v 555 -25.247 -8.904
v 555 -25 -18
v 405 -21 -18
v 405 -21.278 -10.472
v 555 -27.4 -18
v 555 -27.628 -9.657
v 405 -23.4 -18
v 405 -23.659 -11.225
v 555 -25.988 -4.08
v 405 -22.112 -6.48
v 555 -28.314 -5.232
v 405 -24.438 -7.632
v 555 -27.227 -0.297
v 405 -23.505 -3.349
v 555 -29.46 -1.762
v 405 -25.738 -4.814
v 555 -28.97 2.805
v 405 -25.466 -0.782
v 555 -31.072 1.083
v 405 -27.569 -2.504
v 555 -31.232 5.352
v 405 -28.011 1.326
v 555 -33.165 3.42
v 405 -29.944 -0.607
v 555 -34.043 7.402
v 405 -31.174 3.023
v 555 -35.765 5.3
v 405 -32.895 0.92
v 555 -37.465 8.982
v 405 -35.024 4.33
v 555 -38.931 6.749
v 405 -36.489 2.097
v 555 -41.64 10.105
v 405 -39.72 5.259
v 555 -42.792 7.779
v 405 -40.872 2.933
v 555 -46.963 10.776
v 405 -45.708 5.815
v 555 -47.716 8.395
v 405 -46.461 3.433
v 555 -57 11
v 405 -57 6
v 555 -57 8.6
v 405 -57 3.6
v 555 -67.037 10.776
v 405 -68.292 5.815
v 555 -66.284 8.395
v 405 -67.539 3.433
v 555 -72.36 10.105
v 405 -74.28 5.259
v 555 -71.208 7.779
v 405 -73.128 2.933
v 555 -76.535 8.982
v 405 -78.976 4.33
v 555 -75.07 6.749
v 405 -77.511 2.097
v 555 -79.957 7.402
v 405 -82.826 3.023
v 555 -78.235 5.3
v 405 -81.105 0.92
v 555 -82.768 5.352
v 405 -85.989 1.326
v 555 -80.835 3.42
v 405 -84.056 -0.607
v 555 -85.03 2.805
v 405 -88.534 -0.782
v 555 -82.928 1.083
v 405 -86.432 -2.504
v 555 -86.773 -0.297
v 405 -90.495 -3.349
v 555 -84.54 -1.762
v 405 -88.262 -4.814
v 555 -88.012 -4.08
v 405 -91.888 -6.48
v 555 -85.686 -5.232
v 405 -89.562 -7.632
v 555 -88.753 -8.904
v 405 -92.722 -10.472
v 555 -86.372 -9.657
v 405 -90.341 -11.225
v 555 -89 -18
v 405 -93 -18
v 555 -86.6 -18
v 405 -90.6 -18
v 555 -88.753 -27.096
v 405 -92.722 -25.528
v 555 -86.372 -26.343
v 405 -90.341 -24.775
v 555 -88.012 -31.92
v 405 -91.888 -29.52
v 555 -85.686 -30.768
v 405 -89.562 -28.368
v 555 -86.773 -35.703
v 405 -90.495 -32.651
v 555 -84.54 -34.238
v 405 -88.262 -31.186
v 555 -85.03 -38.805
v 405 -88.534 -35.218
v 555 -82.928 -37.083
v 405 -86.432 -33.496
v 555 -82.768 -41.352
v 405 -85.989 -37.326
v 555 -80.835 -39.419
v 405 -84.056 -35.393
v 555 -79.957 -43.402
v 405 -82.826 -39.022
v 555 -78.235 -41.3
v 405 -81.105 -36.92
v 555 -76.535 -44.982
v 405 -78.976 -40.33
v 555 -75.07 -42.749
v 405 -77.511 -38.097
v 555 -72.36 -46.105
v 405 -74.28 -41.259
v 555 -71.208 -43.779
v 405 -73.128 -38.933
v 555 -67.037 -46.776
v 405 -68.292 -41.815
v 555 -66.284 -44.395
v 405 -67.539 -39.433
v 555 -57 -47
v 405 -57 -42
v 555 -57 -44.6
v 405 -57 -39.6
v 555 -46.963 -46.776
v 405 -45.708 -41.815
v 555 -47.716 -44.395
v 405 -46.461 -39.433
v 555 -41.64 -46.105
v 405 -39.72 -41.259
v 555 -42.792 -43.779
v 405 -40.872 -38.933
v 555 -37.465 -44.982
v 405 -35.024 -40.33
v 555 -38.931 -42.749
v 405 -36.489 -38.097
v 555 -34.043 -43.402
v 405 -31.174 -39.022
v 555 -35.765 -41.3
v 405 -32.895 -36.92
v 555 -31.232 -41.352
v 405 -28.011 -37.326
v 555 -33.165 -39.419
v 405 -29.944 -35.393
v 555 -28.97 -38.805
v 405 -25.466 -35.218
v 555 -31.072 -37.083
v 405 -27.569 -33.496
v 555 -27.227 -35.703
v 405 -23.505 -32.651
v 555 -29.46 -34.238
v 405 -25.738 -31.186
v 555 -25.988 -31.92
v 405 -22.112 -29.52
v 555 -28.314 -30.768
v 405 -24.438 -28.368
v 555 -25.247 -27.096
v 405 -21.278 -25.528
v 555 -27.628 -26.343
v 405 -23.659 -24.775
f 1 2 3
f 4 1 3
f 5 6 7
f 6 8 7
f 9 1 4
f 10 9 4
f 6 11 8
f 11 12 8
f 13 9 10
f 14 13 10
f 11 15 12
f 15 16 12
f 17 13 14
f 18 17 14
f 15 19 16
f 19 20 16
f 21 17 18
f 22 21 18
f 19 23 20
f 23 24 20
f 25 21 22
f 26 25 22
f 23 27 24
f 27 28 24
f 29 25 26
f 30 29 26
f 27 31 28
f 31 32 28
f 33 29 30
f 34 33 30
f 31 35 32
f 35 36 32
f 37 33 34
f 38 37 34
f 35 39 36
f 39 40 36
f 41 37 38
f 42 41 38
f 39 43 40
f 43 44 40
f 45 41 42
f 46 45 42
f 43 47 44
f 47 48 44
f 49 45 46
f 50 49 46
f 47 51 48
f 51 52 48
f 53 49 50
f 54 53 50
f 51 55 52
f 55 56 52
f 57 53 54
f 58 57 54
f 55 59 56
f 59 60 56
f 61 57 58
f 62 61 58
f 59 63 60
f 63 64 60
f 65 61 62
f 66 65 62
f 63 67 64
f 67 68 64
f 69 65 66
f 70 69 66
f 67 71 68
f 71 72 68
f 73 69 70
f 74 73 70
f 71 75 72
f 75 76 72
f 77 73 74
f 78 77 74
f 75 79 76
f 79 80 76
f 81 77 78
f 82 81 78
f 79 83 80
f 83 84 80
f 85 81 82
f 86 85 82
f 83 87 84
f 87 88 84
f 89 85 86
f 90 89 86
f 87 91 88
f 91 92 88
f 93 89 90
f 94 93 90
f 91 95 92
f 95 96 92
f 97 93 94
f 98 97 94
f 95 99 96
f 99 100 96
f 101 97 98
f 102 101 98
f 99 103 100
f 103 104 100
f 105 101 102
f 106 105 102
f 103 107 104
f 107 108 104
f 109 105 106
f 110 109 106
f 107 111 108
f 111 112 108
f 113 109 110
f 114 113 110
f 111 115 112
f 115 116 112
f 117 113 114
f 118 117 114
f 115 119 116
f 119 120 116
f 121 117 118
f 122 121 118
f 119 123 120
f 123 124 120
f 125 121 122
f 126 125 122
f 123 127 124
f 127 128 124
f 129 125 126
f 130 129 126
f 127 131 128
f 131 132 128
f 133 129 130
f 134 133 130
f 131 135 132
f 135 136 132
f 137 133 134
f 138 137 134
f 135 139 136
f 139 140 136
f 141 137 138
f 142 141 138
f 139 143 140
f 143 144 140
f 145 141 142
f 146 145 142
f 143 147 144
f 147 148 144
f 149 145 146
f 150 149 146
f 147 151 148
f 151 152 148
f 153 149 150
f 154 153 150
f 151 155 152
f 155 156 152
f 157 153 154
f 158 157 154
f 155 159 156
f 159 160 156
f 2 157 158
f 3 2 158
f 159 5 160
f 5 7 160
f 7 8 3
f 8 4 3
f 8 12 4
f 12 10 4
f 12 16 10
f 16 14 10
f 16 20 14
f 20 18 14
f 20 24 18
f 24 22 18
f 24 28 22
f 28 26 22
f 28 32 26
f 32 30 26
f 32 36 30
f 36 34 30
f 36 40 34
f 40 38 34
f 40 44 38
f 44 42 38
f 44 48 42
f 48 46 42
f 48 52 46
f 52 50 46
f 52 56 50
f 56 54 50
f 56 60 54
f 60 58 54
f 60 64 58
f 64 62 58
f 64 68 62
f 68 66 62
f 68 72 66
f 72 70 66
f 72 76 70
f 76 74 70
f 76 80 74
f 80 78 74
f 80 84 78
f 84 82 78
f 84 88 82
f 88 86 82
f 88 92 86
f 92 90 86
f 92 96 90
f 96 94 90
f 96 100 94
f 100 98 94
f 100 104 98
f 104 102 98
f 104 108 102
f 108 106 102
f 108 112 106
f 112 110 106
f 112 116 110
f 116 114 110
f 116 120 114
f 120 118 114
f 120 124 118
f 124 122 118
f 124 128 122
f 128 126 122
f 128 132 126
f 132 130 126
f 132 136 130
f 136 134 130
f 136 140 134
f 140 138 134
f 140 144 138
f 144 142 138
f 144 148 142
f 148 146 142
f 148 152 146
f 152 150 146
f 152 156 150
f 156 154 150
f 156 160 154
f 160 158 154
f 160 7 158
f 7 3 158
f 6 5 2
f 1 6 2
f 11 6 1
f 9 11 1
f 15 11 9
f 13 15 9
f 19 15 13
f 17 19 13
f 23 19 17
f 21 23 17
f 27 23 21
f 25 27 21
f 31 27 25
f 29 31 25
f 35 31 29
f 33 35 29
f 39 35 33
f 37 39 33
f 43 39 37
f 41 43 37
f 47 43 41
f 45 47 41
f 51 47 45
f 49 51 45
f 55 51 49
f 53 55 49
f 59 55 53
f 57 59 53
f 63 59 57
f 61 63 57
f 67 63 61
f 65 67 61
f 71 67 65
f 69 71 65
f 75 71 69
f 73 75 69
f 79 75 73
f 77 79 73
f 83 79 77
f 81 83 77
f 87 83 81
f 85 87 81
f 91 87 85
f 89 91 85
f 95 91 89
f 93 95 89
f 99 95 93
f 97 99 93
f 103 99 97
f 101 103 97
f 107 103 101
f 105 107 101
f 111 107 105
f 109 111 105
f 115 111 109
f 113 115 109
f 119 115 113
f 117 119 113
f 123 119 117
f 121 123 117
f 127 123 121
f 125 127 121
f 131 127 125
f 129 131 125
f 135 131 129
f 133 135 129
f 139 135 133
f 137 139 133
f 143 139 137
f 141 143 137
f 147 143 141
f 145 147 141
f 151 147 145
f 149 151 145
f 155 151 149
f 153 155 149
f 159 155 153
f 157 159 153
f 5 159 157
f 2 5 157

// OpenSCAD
polyhedron(points=[[405.0, -21.0, -18.0], [405.0, -21.277655, -10.472184], [405.0, -22.111568, -6.48006], [405.0, -23.505149, -3.349061], [405.0, -25.46622, -0.782388], [405.0, -28.011174, 1.325884], [405.0, -31.173582, 3.02252], [405.0, -35.023591, 4.329901], [405.0, -39.72009, 5.258955], [405.0, -45.708275, 5.814896], [405.0, -57.0, 6.0], [405.0, -68.291725, 5.814896], [405.0, -74.27991, 5.258955], [405.0, -78.976409, 4.329901], [405.0, -82.826418, 3.02252], [405.0, -85.988826, 1.325884], [405.0, -88.53378, -0.782388], [405.0, -90.494851, -3.349061], [405.0, -91.888432, -6.48006], [405.0, -92.722345, -10.472184], [405.0, -93.0, -18.0], [405.0, -92.722345, -25.527816], [405.0, -91.888432, -29.51994], [405.0, -90.494851, -32.650939], [405.0, -88.53378, -35.217612], [405.0, -85.988826, -37.325884], [405.0, -82.826418, -39.02252], [405.0, -78.976409, -40.329901], [405.0, -74.27991, -41.258955], [405.0, -68.291725, -41.814896], [405.0, -57.0, -42.0], [405.0, -45.708275, -41.814896], [405.0, -39.72009, -41.258955], [405.0, -35.023591, -40.329901], [405.0, -31.173582, -39.02252], [405.0, -28.011174, -37.325884], [405.0, -25.46622, -35.217612], [405.0, -23.505149, -32.650939], [405.0, -22.111568, -29.51994], [405.0, -21.277655, -25.527816], [405.0, -23.4, -18.0], [405.0, -23.659145, -11.224965], [405.0, -24.437463, -7.632054], [405.0, -25.738139, -4.814155], [405.0, -27.568472, -2.504149], [405.0, -29.943762, -0.606704], [405.0, -32.895343, 0.920268], [405.0, -36.488685, 2.096911], [405.0, -40.872084, 2.933059], [405.0, -46.461057, 3.433407], [405.0, -57.0, 3.6], [405.0, -67.538943, 3.433407], [405.0, -73.127916, 2.933059], [405.0, -77.511315, 2.096911], [405.0, -81.104657, 0.920268], [405.0, -84.056238, -0.606704], [405.0, -86.431528, -2.504149], [405.0, -88.261861, -4.814155], [405.0, -89.562537, -7.632054], [405.0, -90.340855, -11.224965], [405.0, -90.6, -18.0], [405.0, -90.340855, -24.775035], [405.0, -89.562537, -28.367946], [405.0, -88.261861, -31.185845], [405.0, -86.431528, -33.495851], [405.0, -84.056238, -35.393296], [405.0, -81.104657, -36.920268], [405.0, -77.511315, -38.096911], [405.0, -73.127916, -38.933059], [405.0, -67.538943, -39.433407], [405.0, -57.0, -39.6], [405.0, -46.461057, -39.433407], [405.0, -40.872084, -38.933059], [405.0, -36.488685, -38.096911], [405.0, -32.895343, -36.920268], [405.0, -29.943762, -35.393296], [405.0, -27.568472, -33.495851], [405.0, -25.738139, -31.185845], [405.0, -24.437463, -28.367946], [405.0, -23.659145, -24.775035], [555.0, -25.0, -18.0], [555.0, -25.246805, -8.903889], [555.0, -25.98806, -4.080072], [555.0, -27.226799, -0.296782], [555.0, -28.969974, 2.804615], [555.0, -31.232155, 5.35211], [555.0, -34.043184, 7.402211], [555.0, -37.465414, 8.981963], [555.0, -41.64008, 10.10457], [555.0, -46.962911, 10.776333], [555.0, -57.0, 11.0], [555.0, -67.037089, 10.776333], [555.0, -72.35992, 10.10457], [555.0, -76.534586, 8.981963], [555.0, -79.956816, 7.402211], [555.0, -82.767845, 5.35211], [555.0, -85.030026, 2.804615], [555.0, -86.773201, -0.296782], [555.0, -88.01194, -4.080072], [555.0, -88.753195, -8.903889], [555.0, -89.0, -18.0], [555.0, -88.753195, -27.096111], [555.0, -88.01194, -31.919928], [555.0, -86.773201, -35.703218], [555.0, -85.030026, -38.804615], [555.0, -82.767845, -41.35211], [555.0, -79.956816, -43.402211], [555.0, -76.534586, -44.981963], [555.0, -72.35992, -46.10457], [555.0, -67.037089, -46.776333], [555.0, -57.0, -47.0], [555.0, -46.962911, -46.776333], [555.0, -41.64008, -46.10457], [555.0, -37.465414, -44.981963], [555.0, -34.043184, -43.402211], [555.0, -31.232155, -41.35211], [555.0, -28.969974, -38.804615], [555.0, -27.226799, -35.703218], [555.0, -25.98806, -31.919928], [555.0, -25.246805, -27.096111], [555.0, -27.4, -18.0], [555.0, -27.628294, -9.65667], [555.0, -28.313956, -5.232066], [555.0, -29.459789, -1.761876], [555.0, -31.072226, 1.082853], [555.0, -33.164743, 3.419521], [555.0, -35.764945, 5.299959], [555.0, -38.930508, 6.748973], [555.0, -42.792074, 7.778675], [555.0, -47.715693, 8.394843], [555.0, -57.0, 8.6], [555.0, -66.284307, 8.394843], [555.0, -71.207926, 7.778675], [555.0, -75.069492, 6.748973], [555.0, -78.235055, 5.299959], [555.0, -80.835257, 3.419521], [555.0, -82.927774, 1.082853], [555.0, -84.540211, -1.761876], [555.0, -85.686044, -5.232066], [555.0, -86.371706, -9.65667], [555.0, -86.6, -18.0], [555.0, -86.371706, -26.34333], [555.0, -85.686044, -30.767934], [555.0, -84.540211, -34.238124], [555.0, -82.927774, -37.082853], [555.0, -80.835257, -39.419521], [555.0, -78.235055, -41.299959], [555.0, -75.069492, -42.748973], [555.0, -71.207926, -43.778675], [555.0, -66.284307, -44.394843], [555.0, -57.0, -44.6], [555.0, -47.715693, -44.394843], [555.0, -42.792074, -43.778675], [555.0, -38.930508, -42.748973], [555.0, -35.764945, -41.299959], [555.0, -33.164743, -39.419521], [555.0, -31.072226, -37.082853], [555.0, -29.459789, -34.238124], [555.0, -28.313956, -30.767934], [555.0, -27.628294, -26.34333]], faces=[[0, 80, 81], [0, 81, 1], [40, 121, 120], [40, 41, 121], [1, 81, 82], [1, 82, 2], [41, 122, 121], [41, 42, 122], [2, 82, 83], [2, 83, 3], [42, 123, 122], [42, 43, 123], [3, 83, 84], [3, 84, 4], [43, 124, 123], [43, 44, 124], [4, 84, 85], [4, 85, 5], [44, 125, 124], [44, 45, 125], [5, 85, 86], [5, 86, 6], [45, 126, 125], [45, 46, 126], [6, 86, 87], [6, 87, 7], [46, 127, 126], [46, 47, 127], [7, 87, 88], [7, 88, 8], [47, 128, 127], [47, 48, 128], [8, 88, 89], [8, 89, 9], [48, 129, 128], [48, 49, 129], [9, 89, 90], [9, 90, 10], [49, 130, 129], [49, 50, 130], [10, 90, 91], [10, 91, 11], [50, 131, 130], [50, 51, 131], [11, 91, 92], [11, 92, 12], [51, 132, 131], [51, 52, 132], [12, 92, 93], [12, 93, 13], [52, 133, 132], [52, 53, 133], [13, 93, 94], [13, 94, 14], [53, 134, 133], [53, 54, 134], [14, 94, 95], [14, 95, 15], [54, 135, 134], [54, 55, 135], [15, 95, 96], [15, 96, 16], [55, 136, 135], [55, 56, 136], [16, 96, 97], [16, 97, 17], [56, 137, 136], [56, 57, 137], [17, 97, 98], [17, 98, 18], [57, 138, 137], [57, 58, 138], [18, 98, 99], [18, 99, 19], [58, 139, 138], [58, 59, 139], [19, 99, 100], [19, 100, 20], [59, 140, 139], [59, 60, 140], [20, 100, 101], [20, 101, 21], [60, 141, 140], [60, 61, 141], [21, 101, 102], [21, 102, 22], [61, 142, 141], [61, 62, 142], [22, 102, 103], [22, 103, 23], [62, 143, 142], [62, 63, 143], [23, 103, 104], [23, 104, 24], [63, 144, 143], [63, 64, 144], [24, 104, 105], [24, 105, 25], [64, 145, 144], [64, 65, 145], [25, 105, 106], [25, 106, 26], [65, 146, 145], [65, 66, 146], [26, 106, 107], [26, 107, 27], [66, 147, 146], [66, 67, 147], [27, 107, 108], [27, 108, 28], [67, 148, 147], [67, 68, 148], [28, 108, 109], [28, 109, 29], [68, 149, 148], [68, 69, 149], [29, 109, 110], [29, 110, 30], [69, 150, 149], [69, 70, 150], [30, 110, 111], [30, 111, 31], [70, 151, 150], [70, 71, 151], [31, 111, 112], [31, 112, 32], [71, 152, 151], [71, 72, 152], [32, 112, 113], [32, 113, 33], [72, 153, 152], [72, 73, 153], [33, 113, 114], [33, 114, 34], [73, 154, 153], [73, 74, 154], [34, 114, 115], [34, 115, 35], [74, 155, 154], [74, 75, 155], [35, 115, 116], [35, 116, 36], [75, 156, 155], [75, 76, 156], [36, 116, 117], [36, 117, 37], [76, 157, 156], [76, 77, 157], [37, 117, 118], [37, 118, 38], [77, 158, 157], [77, 78, 158], [38, 118, 119], [38, 119, 39], [78, 159, 158], [78, 79, 159], [39, 119, 80], [39, 80, 0], [79, 120, 159], [79, 40, 120], [0, 41, 40], [0, 1, 41], [1, 42, 41], [1, 2, 42], [2, 43, 42], [2, 3, 43], [3, 44, 43], [3, 4, 44], [4, 45, 44], [4, 5, 45], [5, 46, 45], [5, 6, 46], [6, 47, 46], [6, 7, 47], [7, 48, 47], [7, 8, 48], [8, 49, 48], [8, 9, 49], [9, 50, 49], [9, 10, 50], [10, 51, 50], [10, 11, 51], [11, 52, 51], [11, 12, 52], [12, 53, 52], [12, 13, 53], [13, 54, 53], [13, 14, 54], [14, 55, 54], [14, 15, 55], [15, 56, 55], [15, 16, 56], [16, 57, 56], [16, 17, 57], [17, 58, 57], [17, 18, 58], [18, 59, 58], [18, 19, 59], [19, 60, 59], [19, 20, 60], [20, 61, 60], [20, 21, 61], [21, 62, 61], [21, 22, 62], [22, 63, 62], [22, 23, 63], [23, 64, 63], [23, 24, 64], [24, 65, 64], [24, 25, 65], [25, 66, 65], [25, 26, 66], [26, 67, 66], [26, 27, 67], [27, 68, 67], [27, 28, 68], [28, 69, 68], [28, 29, 69], [29, 70, 69], [29, 30, 70], [30, 71, 70], [30, 31, 71], [31, 72, 71], [31, 32, 72], [32, 73, 72], [32, 33, 73], [33, 74, 73], [33, 34, 74], [34, 75, 74], [34, 35, 75], [35, 76, 75], [35, 36, 76], [36, 77, 76], [36, 37, 77], [37, 78, 77], [37, 38, 78], [38, 79, 78], [38, 39, 79], [39, 40, 79], [39, 0, 40], [80, 120, 121], [80, 121, 81], [81, 121, 122], [81, 122, 82], [82, 122, 123], [82, 123, 83], [83, 123, 124], [83, 124, 84], [84, 124, 125], [84, 125, 85], [85, 125, 126], [85, 126, 86], [86, 126, 127], [86, 127, 87], [87, 127, 128], [87, 128, 88], [88, 128, 129], [88, 129, 89], [89, 129, 130], [89, 130, 90], [90, 130, 131], [90, 131, 91], [91, 131, 132], [91, 132, 92], [92, 132, 133], [92, 133, 93], [93, 133, 134], [93, 134, 94], [94, 134, 135], [94, 135, 95], [95, 135, 136], [95, 136, 96], [96, 136, 137], [96, 137, 97], [97, 137, 138], [97, 138, 98], [98, 138, 139], [98, 139, 99], [99, 139, 140], [99, 140, 100], [100, 140, 141], [100, 141, 101], [101, 141, 142], [101, 142, 102], [102, 142, 143], [102, 143, 103], [103, 143, 144], [103, 144, 104], [104, 144, 145], [104, 145, 105], [105, 145, 146], [105, 146, 106], [106, 146, 147], [106, 147, 107], [107, 147, 148], [107, 148, 108], [108, 148, 149], [108, 149, 109], [109, 149, 150], [109, 150, 110], [110, 150, 151], [110, 151, 111], [111, 151, 152], [111, 152, 112], [112, 152, 153], [112, 153, 113], [113, 153, 154], [113, 154, 114], [114, 154, 155], [114, 155, 115], [115, 155, 156], [115, 156, 116], [116, 156, 157], [116, 157, 117], [117, 157, 158], [117, 158, 118], [118, 158, 159], [118, 159, 119], [119, 159, 120], [119, 120, 80]], convexity=30);
